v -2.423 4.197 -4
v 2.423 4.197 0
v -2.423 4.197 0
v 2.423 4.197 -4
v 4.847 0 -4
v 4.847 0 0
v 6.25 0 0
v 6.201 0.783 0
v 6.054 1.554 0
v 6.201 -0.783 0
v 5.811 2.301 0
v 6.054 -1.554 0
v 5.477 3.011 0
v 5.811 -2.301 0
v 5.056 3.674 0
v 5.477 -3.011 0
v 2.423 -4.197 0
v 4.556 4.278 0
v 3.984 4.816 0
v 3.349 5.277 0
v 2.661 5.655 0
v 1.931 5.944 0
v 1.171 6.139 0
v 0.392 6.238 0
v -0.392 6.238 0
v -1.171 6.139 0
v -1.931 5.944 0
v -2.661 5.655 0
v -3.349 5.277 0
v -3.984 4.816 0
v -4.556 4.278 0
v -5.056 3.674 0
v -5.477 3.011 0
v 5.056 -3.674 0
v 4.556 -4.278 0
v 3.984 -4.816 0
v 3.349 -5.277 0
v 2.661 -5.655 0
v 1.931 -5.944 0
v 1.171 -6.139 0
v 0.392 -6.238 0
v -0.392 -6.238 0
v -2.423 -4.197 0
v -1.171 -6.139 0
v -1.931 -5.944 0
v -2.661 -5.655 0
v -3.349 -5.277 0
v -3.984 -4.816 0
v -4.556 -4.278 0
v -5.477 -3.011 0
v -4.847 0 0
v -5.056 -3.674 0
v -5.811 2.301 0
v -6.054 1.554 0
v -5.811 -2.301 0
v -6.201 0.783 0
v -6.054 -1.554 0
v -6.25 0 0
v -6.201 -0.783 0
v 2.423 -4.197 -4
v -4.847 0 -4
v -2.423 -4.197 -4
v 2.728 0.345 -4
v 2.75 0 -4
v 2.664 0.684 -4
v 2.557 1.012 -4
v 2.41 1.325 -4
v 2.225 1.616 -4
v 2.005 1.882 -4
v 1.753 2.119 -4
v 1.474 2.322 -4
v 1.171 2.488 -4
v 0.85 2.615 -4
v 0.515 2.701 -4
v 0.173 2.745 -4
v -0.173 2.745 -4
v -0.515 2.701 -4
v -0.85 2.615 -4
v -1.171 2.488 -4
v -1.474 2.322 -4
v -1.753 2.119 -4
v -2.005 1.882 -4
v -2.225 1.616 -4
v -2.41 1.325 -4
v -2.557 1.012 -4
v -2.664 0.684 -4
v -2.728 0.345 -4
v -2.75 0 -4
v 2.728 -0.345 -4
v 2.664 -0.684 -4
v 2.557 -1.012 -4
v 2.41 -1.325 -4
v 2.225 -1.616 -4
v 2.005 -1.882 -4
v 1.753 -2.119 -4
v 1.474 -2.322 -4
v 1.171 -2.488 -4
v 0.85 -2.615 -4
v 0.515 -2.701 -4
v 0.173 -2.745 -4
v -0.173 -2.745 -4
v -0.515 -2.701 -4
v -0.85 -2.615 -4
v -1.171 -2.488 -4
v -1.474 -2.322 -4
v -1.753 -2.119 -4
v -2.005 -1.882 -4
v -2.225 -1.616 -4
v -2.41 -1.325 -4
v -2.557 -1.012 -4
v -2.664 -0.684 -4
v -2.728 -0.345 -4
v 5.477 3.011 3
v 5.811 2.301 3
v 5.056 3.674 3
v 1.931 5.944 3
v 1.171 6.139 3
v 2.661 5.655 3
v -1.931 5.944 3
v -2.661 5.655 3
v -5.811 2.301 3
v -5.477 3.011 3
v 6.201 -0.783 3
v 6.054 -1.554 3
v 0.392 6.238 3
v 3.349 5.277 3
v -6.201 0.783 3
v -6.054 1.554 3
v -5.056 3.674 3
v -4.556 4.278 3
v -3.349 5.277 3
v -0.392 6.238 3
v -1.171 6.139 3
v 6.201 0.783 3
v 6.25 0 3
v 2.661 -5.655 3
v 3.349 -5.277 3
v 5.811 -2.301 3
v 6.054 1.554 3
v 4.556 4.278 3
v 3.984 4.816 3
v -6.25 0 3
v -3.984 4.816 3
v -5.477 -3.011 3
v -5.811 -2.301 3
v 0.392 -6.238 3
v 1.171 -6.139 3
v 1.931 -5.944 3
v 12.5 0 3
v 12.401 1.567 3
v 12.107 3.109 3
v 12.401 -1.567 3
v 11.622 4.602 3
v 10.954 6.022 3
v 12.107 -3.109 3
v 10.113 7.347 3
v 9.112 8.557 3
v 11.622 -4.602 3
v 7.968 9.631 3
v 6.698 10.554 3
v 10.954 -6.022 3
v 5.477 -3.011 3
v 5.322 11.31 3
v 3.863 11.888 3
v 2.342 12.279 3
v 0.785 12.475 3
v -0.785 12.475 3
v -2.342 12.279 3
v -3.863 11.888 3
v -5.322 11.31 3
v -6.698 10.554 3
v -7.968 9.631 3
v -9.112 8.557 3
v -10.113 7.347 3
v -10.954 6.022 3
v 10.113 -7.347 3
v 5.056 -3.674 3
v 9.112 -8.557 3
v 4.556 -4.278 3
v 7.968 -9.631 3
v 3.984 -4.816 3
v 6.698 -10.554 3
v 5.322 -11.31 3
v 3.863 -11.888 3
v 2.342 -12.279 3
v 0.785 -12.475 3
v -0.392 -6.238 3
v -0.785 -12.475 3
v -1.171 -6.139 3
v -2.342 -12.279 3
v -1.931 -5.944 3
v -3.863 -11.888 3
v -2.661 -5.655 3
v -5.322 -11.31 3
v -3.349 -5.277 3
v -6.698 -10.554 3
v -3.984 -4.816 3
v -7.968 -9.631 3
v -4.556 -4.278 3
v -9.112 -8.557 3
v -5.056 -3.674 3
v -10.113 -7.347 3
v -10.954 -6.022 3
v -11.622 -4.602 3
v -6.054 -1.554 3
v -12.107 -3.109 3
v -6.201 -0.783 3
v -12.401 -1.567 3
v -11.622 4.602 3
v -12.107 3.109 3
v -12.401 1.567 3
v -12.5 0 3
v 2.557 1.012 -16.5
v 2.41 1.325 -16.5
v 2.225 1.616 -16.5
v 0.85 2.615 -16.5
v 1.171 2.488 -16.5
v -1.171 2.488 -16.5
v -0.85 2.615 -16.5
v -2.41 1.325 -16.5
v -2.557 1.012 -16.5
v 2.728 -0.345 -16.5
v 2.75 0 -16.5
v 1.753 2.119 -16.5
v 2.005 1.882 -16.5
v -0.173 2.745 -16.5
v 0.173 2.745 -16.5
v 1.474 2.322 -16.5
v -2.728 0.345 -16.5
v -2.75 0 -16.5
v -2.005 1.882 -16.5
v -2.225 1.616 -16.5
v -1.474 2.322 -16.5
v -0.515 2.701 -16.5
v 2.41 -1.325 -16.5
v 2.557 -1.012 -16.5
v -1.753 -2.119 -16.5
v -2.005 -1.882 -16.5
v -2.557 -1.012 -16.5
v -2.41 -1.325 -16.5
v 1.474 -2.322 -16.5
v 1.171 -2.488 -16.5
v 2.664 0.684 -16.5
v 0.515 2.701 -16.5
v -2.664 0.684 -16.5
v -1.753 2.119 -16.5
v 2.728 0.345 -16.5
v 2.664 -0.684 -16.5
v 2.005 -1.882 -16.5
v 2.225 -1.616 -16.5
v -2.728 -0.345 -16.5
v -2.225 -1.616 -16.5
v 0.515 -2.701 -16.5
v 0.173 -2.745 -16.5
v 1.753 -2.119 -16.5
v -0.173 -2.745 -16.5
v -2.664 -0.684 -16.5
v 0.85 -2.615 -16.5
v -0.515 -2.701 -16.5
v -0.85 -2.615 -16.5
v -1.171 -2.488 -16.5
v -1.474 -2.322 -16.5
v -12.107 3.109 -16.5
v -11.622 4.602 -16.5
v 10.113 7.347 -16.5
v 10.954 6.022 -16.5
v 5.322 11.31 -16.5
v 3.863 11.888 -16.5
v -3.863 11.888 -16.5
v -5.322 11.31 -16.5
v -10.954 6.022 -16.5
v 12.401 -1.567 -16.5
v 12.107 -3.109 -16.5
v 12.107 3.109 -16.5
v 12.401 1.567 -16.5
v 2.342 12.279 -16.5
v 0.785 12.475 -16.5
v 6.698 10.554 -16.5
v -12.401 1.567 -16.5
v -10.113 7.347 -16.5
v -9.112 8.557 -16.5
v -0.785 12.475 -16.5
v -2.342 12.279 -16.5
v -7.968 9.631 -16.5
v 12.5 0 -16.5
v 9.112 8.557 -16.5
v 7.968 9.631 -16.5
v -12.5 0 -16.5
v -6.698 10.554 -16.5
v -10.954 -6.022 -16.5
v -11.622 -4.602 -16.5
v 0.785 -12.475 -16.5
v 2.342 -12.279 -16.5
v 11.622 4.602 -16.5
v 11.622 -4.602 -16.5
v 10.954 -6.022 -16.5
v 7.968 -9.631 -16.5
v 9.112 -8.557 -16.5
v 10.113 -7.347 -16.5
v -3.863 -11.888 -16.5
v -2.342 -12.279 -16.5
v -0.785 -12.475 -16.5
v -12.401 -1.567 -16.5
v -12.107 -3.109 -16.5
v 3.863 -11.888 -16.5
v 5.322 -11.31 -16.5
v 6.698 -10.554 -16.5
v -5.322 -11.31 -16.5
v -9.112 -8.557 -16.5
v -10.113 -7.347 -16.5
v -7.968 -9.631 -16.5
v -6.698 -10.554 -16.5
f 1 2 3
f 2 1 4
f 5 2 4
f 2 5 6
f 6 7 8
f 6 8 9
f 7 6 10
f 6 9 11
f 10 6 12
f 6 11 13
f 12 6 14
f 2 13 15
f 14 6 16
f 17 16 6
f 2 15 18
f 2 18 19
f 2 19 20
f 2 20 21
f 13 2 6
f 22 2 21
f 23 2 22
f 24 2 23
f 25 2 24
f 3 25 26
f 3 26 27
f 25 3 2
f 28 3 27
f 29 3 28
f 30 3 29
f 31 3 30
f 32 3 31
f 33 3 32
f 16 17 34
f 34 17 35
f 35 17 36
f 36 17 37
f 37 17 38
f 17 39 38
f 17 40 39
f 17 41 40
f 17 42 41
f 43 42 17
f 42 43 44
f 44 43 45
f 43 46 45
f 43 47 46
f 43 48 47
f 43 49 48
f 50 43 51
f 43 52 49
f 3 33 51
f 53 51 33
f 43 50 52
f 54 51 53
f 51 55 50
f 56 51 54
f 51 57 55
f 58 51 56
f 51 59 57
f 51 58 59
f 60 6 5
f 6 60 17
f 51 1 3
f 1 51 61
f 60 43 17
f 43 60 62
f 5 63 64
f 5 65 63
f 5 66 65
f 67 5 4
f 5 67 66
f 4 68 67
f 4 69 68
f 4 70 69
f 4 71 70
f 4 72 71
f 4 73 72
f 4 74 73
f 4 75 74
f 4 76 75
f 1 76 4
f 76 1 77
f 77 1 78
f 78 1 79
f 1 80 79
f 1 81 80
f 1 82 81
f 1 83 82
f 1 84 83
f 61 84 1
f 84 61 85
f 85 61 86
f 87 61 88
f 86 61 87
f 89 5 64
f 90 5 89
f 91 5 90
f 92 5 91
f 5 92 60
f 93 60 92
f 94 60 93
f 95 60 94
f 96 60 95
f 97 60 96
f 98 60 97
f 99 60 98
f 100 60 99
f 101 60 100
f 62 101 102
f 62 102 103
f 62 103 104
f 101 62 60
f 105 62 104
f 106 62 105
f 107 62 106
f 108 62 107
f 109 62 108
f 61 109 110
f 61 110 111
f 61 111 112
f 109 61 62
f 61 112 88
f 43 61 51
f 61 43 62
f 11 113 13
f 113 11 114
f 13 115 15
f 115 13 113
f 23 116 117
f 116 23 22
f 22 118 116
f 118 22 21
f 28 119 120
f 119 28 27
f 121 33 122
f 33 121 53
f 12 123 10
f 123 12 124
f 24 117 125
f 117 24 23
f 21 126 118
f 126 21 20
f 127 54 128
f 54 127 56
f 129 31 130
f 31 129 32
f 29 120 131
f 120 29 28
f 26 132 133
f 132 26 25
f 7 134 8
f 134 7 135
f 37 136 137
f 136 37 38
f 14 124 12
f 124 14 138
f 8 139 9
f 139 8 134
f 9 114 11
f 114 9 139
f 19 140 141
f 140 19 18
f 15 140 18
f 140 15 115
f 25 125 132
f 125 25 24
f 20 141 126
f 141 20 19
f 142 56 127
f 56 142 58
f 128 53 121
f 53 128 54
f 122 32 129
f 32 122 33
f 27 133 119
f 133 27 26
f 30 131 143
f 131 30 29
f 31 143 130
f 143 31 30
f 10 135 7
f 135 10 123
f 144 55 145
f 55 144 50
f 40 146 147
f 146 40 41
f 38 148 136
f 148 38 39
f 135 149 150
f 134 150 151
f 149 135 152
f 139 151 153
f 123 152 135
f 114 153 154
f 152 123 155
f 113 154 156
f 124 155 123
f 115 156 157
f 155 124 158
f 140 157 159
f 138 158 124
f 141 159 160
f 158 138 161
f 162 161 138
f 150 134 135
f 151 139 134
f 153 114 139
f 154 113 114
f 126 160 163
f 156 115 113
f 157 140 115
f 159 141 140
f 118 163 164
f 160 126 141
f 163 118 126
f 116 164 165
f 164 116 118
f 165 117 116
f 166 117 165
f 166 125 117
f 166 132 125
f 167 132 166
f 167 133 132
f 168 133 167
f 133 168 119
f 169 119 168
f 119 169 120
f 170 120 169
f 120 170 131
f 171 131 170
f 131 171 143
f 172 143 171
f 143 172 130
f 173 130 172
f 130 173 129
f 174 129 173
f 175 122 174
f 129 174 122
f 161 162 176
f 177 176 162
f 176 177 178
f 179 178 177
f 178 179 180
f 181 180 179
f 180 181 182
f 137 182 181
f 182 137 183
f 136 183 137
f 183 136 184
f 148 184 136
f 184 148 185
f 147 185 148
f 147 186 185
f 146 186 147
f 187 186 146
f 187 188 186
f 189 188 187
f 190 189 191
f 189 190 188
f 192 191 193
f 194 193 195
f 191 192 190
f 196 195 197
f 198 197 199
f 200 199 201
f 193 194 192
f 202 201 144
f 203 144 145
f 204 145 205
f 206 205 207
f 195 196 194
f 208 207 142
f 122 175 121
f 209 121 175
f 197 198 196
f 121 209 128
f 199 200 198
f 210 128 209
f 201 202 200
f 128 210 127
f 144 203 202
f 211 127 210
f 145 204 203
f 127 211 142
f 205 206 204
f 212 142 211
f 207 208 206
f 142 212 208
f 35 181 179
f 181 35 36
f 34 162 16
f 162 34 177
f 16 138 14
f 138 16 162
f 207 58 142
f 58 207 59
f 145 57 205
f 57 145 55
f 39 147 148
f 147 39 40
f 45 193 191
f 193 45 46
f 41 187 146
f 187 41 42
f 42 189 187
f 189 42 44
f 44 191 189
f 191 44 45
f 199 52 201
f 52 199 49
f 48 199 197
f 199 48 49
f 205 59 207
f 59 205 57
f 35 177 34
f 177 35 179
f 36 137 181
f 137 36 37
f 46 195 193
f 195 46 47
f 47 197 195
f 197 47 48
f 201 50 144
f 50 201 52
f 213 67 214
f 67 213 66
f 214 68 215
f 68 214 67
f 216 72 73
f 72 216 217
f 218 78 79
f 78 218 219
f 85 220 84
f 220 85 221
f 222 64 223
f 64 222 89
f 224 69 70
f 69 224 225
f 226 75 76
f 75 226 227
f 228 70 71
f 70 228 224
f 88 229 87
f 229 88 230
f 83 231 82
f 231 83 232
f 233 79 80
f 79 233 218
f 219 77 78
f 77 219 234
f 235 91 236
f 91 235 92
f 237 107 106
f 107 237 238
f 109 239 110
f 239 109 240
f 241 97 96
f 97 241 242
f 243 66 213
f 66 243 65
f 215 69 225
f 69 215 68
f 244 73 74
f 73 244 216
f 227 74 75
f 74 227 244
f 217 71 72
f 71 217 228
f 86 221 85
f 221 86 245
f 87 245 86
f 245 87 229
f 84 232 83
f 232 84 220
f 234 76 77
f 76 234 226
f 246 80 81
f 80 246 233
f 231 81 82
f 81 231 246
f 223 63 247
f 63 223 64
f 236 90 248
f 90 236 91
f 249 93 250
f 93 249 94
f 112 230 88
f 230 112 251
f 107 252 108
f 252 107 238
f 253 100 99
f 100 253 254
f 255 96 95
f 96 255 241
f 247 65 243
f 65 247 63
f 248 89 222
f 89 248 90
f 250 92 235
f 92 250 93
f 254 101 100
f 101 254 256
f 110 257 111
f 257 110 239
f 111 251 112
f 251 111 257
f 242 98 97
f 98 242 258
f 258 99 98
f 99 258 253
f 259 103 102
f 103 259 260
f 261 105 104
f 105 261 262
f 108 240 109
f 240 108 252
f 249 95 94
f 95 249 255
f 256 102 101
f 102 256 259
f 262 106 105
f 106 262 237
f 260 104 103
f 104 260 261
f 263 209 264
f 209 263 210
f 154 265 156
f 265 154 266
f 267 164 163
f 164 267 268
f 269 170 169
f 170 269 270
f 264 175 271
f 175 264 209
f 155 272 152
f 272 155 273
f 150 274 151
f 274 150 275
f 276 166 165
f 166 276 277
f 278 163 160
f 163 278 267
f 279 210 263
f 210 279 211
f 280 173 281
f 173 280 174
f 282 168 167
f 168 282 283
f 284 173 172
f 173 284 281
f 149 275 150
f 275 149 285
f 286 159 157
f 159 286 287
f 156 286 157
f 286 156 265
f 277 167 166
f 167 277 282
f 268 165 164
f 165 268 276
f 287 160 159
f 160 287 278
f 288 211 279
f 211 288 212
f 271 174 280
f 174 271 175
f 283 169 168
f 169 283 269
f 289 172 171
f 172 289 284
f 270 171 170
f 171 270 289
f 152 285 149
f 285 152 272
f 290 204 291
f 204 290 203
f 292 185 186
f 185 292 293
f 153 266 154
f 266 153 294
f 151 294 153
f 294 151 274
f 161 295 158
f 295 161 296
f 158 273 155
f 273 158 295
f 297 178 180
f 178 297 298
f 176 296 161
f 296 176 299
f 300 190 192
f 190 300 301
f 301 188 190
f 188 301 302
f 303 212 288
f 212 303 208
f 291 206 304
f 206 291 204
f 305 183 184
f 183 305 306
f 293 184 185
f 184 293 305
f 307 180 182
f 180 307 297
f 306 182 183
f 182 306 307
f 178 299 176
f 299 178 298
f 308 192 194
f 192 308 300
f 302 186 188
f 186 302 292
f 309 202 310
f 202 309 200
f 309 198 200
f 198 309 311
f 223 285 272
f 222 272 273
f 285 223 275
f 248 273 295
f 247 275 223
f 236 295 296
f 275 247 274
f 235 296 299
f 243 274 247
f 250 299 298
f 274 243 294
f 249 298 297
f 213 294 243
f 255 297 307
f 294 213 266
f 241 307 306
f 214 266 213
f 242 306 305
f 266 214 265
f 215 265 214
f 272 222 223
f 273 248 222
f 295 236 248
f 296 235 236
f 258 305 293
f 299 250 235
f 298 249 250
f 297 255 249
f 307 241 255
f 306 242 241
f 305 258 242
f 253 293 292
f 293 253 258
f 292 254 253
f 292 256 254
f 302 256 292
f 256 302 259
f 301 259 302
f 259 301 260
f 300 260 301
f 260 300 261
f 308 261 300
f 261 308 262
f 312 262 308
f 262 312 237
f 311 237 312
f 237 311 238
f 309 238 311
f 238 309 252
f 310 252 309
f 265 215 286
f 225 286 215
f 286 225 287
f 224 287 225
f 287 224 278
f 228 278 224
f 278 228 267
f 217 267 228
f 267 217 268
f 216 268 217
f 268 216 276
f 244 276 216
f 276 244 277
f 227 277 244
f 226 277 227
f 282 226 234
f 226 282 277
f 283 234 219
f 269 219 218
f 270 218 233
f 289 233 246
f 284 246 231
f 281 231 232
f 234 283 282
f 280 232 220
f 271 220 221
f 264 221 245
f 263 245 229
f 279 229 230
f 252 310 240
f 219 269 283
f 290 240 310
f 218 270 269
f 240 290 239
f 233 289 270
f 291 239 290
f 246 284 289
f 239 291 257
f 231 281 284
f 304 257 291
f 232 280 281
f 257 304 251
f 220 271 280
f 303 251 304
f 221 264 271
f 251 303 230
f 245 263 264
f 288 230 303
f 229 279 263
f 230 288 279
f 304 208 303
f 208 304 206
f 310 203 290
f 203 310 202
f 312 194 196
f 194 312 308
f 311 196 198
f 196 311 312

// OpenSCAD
$fn = 50;

difference() {
	union() {
		translate(v = [0, 0, -16.5]) {
			cylinder(h = 19.5, r = 12.5);
		}
	}
	union() {
		translate(v = [0, 0, 0]) {
			rotate(a = [0, 0, 0]) {
				difference() {
					union() {
						translate(v = [0, 0, -4]) {
							linear_extrude(height = 4) {
								polygon(points = [[4.8468, 0.0], [2.4234000000000004, 4.197451927062417], [-2.423399999999999, 4.197451927062417], [-4.8468, 5.935618106107392e-16], [-2.423400000000002, -4.197451927062416], [2.423399999999997, -4.197451927062419]]);
							}
						}
					}
					union();
				}
			}
		}
		#cylinder(h = 3, r = 6.25);
		#translate(v = [0, 0, -100.0]) {
			cylinder(h = 200, r = 2.75);
		}
	}
}
